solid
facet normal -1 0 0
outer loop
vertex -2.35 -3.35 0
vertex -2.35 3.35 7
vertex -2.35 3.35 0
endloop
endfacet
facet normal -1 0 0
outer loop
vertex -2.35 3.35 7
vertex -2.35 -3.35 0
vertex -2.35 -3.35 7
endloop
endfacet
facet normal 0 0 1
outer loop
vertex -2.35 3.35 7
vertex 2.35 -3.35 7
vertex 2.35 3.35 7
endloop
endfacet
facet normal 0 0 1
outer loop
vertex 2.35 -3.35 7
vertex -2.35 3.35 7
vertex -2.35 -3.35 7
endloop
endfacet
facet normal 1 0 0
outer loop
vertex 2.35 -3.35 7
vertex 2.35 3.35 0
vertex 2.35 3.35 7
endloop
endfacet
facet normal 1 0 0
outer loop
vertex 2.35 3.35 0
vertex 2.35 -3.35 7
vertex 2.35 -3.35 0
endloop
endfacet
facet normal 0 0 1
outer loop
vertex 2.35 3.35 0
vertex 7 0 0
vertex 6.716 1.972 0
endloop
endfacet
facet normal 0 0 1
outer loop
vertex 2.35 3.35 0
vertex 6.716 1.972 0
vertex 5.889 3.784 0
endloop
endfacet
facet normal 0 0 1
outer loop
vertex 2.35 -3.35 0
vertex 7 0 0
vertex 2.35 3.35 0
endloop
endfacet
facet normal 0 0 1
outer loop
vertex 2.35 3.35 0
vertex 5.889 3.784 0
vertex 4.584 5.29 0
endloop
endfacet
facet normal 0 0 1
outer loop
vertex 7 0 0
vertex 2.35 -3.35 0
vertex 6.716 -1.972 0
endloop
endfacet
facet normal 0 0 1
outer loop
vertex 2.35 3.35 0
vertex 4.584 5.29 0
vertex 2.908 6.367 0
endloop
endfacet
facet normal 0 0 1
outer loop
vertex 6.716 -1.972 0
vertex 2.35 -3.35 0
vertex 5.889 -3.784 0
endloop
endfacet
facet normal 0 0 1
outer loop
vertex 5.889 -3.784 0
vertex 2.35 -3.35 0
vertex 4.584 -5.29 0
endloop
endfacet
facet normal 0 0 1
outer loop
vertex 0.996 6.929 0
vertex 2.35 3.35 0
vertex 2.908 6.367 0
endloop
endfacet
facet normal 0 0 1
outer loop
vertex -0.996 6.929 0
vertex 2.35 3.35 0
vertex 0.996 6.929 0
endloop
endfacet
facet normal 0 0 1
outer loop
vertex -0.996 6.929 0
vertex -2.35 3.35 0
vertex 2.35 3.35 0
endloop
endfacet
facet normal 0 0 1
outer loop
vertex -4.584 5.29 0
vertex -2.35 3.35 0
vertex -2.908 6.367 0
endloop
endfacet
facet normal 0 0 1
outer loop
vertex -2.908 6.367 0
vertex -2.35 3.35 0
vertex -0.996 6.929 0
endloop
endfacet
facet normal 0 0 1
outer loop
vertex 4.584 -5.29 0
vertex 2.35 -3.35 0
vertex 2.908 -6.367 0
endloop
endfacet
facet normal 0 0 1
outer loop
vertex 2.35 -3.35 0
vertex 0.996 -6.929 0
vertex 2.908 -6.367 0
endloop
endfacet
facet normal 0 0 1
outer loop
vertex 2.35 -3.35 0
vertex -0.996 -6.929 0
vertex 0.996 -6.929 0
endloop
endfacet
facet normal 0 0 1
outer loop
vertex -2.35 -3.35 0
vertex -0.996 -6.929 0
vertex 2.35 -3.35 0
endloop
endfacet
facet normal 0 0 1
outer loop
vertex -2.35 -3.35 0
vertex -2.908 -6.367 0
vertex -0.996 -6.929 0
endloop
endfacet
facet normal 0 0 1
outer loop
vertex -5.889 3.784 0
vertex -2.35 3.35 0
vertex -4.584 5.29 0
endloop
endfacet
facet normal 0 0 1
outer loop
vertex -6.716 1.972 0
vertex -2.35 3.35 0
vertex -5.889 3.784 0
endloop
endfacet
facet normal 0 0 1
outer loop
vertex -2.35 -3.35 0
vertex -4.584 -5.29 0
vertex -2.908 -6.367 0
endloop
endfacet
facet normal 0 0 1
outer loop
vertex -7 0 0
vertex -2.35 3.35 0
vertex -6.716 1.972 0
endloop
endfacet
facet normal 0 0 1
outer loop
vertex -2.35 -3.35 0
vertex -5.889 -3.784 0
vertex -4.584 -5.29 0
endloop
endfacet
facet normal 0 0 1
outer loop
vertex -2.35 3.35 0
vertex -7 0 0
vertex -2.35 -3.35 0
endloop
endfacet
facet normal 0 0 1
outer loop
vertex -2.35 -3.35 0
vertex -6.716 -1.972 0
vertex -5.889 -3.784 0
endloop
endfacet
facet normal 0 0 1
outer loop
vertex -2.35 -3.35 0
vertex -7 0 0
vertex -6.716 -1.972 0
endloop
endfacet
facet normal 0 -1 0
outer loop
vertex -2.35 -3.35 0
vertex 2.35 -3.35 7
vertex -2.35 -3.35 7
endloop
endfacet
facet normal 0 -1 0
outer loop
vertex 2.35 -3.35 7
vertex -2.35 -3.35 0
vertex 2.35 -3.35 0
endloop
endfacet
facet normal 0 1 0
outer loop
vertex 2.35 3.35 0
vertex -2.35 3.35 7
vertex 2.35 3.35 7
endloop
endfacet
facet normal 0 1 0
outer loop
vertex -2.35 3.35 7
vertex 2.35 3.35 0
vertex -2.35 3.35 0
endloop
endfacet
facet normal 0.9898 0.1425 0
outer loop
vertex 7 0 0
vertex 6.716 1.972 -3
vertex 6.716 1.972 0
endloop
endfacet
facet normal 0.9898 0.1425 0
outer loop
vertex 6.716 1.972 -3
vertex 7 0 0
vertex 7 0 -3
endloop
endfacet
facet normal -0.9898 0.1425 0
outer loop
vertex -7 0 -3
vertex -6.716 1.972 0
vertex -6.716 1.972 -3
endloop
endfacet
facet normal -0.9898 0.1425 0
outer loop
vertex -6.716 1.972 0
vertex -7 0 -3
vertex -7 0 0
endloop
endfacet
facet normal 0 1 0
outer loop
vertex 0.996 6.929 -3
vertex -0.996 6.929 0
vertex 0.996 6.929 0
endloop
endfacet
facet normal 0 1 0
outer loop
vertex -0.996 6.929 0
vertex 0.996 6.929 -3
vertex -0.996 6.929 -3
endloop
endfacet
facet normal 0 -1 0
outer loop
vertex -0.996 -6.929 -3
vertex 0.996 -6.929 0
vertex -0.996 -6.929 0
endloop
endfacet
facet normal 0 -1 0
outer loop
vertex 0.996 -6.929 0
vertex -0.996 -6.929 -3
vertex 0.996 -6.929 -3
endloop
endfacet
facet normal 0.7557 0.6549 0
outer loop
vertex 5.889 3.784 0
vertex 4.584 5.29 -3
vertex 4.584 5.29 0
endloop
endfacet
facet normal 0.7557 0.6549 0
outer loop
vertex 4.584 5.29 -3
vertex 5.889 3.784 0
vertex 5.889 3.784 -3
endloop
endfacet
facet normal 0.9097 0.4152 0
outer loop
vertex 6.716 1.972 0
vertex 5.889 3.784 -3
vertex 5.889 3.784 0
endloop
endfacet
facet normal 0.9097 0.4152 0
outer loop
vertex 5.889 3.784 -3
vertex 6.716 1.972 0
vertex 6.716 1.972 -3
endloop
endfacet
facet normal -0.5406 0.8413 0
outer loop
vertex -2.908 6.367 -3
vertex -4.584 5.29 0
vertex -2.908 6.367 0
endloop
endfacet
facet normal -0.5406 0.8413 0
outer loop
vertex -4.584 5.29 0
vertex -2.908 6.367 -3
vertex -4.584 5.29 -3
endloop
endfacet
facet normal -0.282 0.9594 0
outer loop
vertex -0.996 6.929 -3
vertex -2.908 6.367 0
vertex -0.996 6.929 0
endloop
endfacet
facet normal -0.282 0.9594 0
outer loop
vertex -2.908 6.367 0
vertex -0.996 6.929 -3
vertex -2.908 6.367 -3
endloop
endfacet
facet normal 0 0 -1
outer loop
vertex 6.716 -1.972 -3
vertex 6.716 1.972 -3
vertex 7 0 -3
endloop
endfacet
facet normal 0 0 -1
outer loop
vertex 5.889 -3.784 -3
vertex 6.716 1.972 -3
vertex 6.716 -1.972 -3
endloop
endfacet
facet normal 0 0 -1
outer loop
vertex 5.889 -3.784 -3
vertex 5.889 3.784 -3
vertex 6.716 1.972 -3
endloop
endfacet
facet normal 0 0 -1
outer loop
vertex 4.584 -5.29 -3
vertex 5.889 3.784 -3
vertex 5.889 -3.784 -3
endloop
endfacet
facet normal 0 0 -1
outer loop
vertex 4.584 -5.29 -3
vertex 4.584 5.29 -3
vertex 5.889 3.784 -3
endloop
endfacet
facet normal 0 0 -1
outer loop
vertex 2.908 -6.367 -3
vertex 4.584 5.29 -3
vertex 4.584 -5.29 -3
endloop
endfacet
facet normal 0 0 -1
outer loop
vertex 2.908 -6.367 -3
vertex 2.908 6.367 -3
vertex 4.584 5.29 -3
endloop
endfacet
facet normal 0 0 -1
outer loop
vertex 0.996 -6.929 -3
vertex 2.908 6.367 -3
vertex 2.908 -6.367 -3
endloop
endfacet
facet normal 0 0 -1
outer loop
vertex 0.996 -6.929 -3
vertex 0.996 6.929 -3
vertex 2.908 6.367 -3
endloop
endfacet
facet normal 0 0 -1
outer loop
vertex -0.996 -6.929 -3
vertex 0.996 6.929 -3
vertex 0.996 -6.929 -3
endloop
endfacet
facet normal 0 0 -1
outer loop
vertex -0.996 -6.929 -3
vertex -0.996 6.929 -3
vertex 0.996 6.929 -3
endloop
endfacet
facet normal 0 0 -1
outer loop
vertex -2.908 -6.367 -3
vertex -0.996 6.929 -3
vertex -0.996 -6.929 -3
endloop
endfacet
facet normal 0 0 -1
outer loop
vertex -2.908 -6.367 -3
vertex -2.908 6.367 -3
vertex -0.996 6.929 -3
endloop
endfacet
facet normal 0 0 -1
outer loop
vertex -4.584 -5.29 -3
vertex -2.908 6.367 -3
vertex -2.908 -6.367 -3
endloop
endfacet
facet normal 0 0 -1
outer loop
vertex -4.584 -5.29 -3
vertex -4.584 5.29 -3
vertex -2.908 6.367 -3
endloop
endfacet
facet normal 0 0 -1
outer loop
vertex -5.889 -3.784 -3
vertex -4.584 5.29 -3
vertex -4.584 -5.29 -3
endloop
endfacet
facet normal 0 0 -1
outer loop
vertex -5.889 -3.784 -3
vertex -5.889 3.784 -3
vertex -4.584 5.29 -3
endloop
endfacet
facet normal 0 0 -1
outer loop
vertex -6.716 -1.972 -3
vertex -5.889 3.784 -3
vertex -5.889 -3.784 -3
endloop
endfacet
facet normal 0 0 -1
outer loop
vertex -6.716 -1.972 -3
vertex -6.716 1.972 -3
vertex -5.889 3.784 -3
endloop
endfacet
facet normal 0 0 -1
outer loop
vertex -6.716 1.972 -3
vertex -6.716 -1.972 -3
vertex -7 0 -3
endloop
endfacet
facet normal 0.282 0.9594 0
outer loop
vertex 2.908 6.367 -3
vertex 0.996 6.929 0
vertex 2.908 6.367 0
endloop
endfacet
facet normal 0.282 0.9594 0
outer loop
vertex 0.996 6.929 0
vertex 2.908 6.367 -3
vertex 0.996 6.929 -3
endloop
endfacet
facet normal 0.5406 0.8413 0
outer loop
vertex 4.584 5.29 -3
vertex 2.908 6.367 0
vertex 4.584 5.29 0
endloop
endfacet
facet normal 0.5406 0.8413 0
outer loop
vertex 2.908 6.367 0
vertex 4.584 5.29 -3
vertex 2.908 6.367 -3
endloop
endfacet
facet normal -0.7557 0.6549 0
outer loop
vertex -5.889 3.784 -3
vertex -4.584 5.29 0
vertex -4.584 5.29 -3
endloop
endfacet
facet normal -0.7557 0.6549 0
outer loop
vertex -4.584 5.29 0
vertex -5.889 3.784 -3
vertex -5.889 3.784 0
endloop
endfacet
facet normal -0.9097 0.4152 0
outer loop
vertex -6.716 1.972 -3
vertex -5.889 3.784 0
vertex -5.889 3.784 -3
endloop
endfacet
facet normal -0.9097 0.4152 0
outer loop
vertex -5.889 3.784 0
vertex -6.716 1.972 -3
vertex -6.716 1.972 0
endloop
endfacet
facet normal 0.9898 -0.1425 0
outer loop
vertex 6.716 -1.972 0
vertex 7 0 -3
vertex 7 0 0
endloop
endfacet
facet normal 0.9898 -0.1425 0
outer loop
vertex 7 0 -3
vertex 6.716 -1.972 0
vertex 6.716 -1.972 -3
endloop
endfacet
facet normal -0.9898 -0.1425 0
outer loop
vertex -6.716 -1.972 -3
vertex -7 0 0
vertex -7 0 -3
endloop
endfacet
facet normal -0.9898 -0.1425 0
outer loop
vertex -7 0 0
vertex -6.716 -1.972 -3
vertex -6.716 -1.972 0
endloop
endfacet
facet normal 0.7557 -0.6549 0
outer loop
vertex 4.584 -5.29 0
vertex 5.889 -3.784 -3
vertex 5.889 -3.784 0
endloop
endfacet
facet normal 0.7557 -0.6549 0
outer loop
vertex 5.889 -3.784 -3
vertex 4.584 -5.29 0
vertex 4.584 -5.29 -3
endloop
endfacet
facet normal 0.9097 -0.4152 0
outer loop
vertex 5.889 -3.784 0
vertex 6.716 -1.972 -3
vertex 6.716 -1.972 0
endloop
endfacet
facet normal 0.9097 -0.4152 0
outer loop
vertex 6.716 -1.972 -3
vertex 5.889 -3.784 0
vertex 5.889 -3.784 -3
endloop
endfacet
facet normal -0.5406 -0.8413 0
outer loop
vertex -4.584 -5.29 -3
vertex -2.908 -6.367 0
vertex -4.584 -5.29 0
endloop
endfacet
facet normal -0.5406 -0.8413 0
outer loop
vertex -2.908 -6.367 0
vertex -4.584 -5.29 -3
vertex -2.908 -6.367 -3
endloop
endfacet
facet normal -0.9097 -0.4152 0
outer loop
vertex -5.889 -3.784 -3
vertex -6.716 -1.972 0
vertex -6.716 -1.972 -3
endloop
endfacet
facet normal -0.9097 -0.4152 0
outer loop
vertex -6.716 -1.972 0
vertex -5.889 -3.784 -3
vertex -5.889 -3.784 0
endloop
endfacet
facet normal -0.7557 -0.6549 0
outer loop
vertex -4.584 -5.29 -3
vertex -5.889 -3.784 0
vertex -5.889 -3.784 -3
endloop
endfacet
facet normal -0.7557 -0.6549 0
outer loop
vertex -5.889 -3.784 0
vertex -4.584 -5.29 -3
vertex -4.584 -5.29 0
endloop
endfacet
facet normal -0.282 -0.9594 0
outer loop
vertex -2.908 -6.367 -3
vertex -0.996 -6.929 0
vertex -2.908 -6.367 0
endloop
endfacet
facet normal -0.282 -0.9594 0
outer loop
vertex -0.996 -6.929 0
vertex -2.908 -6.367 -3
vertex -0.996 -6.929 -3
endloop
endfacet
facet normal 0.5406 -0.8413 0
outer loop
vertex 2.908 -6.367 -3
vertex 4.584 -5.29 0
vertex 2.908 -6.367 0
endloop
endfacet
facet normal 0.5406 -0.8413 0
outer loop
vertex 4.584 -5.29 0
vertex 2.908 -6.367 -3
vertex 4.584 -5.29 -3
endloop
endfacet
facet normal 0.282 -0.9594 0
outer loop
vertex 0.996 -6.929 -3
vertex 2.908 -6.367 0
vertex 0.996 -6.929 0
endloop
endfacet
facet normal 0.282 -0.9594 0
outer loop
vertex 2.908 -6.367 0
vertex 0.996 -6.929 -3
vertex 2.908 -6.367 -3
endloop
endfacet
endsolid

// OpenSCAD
translate([0,0,3.5])
cube([4.7,6.7,7], center=true);

translate([0,0,-3])
cylinder(r=7, 3);
